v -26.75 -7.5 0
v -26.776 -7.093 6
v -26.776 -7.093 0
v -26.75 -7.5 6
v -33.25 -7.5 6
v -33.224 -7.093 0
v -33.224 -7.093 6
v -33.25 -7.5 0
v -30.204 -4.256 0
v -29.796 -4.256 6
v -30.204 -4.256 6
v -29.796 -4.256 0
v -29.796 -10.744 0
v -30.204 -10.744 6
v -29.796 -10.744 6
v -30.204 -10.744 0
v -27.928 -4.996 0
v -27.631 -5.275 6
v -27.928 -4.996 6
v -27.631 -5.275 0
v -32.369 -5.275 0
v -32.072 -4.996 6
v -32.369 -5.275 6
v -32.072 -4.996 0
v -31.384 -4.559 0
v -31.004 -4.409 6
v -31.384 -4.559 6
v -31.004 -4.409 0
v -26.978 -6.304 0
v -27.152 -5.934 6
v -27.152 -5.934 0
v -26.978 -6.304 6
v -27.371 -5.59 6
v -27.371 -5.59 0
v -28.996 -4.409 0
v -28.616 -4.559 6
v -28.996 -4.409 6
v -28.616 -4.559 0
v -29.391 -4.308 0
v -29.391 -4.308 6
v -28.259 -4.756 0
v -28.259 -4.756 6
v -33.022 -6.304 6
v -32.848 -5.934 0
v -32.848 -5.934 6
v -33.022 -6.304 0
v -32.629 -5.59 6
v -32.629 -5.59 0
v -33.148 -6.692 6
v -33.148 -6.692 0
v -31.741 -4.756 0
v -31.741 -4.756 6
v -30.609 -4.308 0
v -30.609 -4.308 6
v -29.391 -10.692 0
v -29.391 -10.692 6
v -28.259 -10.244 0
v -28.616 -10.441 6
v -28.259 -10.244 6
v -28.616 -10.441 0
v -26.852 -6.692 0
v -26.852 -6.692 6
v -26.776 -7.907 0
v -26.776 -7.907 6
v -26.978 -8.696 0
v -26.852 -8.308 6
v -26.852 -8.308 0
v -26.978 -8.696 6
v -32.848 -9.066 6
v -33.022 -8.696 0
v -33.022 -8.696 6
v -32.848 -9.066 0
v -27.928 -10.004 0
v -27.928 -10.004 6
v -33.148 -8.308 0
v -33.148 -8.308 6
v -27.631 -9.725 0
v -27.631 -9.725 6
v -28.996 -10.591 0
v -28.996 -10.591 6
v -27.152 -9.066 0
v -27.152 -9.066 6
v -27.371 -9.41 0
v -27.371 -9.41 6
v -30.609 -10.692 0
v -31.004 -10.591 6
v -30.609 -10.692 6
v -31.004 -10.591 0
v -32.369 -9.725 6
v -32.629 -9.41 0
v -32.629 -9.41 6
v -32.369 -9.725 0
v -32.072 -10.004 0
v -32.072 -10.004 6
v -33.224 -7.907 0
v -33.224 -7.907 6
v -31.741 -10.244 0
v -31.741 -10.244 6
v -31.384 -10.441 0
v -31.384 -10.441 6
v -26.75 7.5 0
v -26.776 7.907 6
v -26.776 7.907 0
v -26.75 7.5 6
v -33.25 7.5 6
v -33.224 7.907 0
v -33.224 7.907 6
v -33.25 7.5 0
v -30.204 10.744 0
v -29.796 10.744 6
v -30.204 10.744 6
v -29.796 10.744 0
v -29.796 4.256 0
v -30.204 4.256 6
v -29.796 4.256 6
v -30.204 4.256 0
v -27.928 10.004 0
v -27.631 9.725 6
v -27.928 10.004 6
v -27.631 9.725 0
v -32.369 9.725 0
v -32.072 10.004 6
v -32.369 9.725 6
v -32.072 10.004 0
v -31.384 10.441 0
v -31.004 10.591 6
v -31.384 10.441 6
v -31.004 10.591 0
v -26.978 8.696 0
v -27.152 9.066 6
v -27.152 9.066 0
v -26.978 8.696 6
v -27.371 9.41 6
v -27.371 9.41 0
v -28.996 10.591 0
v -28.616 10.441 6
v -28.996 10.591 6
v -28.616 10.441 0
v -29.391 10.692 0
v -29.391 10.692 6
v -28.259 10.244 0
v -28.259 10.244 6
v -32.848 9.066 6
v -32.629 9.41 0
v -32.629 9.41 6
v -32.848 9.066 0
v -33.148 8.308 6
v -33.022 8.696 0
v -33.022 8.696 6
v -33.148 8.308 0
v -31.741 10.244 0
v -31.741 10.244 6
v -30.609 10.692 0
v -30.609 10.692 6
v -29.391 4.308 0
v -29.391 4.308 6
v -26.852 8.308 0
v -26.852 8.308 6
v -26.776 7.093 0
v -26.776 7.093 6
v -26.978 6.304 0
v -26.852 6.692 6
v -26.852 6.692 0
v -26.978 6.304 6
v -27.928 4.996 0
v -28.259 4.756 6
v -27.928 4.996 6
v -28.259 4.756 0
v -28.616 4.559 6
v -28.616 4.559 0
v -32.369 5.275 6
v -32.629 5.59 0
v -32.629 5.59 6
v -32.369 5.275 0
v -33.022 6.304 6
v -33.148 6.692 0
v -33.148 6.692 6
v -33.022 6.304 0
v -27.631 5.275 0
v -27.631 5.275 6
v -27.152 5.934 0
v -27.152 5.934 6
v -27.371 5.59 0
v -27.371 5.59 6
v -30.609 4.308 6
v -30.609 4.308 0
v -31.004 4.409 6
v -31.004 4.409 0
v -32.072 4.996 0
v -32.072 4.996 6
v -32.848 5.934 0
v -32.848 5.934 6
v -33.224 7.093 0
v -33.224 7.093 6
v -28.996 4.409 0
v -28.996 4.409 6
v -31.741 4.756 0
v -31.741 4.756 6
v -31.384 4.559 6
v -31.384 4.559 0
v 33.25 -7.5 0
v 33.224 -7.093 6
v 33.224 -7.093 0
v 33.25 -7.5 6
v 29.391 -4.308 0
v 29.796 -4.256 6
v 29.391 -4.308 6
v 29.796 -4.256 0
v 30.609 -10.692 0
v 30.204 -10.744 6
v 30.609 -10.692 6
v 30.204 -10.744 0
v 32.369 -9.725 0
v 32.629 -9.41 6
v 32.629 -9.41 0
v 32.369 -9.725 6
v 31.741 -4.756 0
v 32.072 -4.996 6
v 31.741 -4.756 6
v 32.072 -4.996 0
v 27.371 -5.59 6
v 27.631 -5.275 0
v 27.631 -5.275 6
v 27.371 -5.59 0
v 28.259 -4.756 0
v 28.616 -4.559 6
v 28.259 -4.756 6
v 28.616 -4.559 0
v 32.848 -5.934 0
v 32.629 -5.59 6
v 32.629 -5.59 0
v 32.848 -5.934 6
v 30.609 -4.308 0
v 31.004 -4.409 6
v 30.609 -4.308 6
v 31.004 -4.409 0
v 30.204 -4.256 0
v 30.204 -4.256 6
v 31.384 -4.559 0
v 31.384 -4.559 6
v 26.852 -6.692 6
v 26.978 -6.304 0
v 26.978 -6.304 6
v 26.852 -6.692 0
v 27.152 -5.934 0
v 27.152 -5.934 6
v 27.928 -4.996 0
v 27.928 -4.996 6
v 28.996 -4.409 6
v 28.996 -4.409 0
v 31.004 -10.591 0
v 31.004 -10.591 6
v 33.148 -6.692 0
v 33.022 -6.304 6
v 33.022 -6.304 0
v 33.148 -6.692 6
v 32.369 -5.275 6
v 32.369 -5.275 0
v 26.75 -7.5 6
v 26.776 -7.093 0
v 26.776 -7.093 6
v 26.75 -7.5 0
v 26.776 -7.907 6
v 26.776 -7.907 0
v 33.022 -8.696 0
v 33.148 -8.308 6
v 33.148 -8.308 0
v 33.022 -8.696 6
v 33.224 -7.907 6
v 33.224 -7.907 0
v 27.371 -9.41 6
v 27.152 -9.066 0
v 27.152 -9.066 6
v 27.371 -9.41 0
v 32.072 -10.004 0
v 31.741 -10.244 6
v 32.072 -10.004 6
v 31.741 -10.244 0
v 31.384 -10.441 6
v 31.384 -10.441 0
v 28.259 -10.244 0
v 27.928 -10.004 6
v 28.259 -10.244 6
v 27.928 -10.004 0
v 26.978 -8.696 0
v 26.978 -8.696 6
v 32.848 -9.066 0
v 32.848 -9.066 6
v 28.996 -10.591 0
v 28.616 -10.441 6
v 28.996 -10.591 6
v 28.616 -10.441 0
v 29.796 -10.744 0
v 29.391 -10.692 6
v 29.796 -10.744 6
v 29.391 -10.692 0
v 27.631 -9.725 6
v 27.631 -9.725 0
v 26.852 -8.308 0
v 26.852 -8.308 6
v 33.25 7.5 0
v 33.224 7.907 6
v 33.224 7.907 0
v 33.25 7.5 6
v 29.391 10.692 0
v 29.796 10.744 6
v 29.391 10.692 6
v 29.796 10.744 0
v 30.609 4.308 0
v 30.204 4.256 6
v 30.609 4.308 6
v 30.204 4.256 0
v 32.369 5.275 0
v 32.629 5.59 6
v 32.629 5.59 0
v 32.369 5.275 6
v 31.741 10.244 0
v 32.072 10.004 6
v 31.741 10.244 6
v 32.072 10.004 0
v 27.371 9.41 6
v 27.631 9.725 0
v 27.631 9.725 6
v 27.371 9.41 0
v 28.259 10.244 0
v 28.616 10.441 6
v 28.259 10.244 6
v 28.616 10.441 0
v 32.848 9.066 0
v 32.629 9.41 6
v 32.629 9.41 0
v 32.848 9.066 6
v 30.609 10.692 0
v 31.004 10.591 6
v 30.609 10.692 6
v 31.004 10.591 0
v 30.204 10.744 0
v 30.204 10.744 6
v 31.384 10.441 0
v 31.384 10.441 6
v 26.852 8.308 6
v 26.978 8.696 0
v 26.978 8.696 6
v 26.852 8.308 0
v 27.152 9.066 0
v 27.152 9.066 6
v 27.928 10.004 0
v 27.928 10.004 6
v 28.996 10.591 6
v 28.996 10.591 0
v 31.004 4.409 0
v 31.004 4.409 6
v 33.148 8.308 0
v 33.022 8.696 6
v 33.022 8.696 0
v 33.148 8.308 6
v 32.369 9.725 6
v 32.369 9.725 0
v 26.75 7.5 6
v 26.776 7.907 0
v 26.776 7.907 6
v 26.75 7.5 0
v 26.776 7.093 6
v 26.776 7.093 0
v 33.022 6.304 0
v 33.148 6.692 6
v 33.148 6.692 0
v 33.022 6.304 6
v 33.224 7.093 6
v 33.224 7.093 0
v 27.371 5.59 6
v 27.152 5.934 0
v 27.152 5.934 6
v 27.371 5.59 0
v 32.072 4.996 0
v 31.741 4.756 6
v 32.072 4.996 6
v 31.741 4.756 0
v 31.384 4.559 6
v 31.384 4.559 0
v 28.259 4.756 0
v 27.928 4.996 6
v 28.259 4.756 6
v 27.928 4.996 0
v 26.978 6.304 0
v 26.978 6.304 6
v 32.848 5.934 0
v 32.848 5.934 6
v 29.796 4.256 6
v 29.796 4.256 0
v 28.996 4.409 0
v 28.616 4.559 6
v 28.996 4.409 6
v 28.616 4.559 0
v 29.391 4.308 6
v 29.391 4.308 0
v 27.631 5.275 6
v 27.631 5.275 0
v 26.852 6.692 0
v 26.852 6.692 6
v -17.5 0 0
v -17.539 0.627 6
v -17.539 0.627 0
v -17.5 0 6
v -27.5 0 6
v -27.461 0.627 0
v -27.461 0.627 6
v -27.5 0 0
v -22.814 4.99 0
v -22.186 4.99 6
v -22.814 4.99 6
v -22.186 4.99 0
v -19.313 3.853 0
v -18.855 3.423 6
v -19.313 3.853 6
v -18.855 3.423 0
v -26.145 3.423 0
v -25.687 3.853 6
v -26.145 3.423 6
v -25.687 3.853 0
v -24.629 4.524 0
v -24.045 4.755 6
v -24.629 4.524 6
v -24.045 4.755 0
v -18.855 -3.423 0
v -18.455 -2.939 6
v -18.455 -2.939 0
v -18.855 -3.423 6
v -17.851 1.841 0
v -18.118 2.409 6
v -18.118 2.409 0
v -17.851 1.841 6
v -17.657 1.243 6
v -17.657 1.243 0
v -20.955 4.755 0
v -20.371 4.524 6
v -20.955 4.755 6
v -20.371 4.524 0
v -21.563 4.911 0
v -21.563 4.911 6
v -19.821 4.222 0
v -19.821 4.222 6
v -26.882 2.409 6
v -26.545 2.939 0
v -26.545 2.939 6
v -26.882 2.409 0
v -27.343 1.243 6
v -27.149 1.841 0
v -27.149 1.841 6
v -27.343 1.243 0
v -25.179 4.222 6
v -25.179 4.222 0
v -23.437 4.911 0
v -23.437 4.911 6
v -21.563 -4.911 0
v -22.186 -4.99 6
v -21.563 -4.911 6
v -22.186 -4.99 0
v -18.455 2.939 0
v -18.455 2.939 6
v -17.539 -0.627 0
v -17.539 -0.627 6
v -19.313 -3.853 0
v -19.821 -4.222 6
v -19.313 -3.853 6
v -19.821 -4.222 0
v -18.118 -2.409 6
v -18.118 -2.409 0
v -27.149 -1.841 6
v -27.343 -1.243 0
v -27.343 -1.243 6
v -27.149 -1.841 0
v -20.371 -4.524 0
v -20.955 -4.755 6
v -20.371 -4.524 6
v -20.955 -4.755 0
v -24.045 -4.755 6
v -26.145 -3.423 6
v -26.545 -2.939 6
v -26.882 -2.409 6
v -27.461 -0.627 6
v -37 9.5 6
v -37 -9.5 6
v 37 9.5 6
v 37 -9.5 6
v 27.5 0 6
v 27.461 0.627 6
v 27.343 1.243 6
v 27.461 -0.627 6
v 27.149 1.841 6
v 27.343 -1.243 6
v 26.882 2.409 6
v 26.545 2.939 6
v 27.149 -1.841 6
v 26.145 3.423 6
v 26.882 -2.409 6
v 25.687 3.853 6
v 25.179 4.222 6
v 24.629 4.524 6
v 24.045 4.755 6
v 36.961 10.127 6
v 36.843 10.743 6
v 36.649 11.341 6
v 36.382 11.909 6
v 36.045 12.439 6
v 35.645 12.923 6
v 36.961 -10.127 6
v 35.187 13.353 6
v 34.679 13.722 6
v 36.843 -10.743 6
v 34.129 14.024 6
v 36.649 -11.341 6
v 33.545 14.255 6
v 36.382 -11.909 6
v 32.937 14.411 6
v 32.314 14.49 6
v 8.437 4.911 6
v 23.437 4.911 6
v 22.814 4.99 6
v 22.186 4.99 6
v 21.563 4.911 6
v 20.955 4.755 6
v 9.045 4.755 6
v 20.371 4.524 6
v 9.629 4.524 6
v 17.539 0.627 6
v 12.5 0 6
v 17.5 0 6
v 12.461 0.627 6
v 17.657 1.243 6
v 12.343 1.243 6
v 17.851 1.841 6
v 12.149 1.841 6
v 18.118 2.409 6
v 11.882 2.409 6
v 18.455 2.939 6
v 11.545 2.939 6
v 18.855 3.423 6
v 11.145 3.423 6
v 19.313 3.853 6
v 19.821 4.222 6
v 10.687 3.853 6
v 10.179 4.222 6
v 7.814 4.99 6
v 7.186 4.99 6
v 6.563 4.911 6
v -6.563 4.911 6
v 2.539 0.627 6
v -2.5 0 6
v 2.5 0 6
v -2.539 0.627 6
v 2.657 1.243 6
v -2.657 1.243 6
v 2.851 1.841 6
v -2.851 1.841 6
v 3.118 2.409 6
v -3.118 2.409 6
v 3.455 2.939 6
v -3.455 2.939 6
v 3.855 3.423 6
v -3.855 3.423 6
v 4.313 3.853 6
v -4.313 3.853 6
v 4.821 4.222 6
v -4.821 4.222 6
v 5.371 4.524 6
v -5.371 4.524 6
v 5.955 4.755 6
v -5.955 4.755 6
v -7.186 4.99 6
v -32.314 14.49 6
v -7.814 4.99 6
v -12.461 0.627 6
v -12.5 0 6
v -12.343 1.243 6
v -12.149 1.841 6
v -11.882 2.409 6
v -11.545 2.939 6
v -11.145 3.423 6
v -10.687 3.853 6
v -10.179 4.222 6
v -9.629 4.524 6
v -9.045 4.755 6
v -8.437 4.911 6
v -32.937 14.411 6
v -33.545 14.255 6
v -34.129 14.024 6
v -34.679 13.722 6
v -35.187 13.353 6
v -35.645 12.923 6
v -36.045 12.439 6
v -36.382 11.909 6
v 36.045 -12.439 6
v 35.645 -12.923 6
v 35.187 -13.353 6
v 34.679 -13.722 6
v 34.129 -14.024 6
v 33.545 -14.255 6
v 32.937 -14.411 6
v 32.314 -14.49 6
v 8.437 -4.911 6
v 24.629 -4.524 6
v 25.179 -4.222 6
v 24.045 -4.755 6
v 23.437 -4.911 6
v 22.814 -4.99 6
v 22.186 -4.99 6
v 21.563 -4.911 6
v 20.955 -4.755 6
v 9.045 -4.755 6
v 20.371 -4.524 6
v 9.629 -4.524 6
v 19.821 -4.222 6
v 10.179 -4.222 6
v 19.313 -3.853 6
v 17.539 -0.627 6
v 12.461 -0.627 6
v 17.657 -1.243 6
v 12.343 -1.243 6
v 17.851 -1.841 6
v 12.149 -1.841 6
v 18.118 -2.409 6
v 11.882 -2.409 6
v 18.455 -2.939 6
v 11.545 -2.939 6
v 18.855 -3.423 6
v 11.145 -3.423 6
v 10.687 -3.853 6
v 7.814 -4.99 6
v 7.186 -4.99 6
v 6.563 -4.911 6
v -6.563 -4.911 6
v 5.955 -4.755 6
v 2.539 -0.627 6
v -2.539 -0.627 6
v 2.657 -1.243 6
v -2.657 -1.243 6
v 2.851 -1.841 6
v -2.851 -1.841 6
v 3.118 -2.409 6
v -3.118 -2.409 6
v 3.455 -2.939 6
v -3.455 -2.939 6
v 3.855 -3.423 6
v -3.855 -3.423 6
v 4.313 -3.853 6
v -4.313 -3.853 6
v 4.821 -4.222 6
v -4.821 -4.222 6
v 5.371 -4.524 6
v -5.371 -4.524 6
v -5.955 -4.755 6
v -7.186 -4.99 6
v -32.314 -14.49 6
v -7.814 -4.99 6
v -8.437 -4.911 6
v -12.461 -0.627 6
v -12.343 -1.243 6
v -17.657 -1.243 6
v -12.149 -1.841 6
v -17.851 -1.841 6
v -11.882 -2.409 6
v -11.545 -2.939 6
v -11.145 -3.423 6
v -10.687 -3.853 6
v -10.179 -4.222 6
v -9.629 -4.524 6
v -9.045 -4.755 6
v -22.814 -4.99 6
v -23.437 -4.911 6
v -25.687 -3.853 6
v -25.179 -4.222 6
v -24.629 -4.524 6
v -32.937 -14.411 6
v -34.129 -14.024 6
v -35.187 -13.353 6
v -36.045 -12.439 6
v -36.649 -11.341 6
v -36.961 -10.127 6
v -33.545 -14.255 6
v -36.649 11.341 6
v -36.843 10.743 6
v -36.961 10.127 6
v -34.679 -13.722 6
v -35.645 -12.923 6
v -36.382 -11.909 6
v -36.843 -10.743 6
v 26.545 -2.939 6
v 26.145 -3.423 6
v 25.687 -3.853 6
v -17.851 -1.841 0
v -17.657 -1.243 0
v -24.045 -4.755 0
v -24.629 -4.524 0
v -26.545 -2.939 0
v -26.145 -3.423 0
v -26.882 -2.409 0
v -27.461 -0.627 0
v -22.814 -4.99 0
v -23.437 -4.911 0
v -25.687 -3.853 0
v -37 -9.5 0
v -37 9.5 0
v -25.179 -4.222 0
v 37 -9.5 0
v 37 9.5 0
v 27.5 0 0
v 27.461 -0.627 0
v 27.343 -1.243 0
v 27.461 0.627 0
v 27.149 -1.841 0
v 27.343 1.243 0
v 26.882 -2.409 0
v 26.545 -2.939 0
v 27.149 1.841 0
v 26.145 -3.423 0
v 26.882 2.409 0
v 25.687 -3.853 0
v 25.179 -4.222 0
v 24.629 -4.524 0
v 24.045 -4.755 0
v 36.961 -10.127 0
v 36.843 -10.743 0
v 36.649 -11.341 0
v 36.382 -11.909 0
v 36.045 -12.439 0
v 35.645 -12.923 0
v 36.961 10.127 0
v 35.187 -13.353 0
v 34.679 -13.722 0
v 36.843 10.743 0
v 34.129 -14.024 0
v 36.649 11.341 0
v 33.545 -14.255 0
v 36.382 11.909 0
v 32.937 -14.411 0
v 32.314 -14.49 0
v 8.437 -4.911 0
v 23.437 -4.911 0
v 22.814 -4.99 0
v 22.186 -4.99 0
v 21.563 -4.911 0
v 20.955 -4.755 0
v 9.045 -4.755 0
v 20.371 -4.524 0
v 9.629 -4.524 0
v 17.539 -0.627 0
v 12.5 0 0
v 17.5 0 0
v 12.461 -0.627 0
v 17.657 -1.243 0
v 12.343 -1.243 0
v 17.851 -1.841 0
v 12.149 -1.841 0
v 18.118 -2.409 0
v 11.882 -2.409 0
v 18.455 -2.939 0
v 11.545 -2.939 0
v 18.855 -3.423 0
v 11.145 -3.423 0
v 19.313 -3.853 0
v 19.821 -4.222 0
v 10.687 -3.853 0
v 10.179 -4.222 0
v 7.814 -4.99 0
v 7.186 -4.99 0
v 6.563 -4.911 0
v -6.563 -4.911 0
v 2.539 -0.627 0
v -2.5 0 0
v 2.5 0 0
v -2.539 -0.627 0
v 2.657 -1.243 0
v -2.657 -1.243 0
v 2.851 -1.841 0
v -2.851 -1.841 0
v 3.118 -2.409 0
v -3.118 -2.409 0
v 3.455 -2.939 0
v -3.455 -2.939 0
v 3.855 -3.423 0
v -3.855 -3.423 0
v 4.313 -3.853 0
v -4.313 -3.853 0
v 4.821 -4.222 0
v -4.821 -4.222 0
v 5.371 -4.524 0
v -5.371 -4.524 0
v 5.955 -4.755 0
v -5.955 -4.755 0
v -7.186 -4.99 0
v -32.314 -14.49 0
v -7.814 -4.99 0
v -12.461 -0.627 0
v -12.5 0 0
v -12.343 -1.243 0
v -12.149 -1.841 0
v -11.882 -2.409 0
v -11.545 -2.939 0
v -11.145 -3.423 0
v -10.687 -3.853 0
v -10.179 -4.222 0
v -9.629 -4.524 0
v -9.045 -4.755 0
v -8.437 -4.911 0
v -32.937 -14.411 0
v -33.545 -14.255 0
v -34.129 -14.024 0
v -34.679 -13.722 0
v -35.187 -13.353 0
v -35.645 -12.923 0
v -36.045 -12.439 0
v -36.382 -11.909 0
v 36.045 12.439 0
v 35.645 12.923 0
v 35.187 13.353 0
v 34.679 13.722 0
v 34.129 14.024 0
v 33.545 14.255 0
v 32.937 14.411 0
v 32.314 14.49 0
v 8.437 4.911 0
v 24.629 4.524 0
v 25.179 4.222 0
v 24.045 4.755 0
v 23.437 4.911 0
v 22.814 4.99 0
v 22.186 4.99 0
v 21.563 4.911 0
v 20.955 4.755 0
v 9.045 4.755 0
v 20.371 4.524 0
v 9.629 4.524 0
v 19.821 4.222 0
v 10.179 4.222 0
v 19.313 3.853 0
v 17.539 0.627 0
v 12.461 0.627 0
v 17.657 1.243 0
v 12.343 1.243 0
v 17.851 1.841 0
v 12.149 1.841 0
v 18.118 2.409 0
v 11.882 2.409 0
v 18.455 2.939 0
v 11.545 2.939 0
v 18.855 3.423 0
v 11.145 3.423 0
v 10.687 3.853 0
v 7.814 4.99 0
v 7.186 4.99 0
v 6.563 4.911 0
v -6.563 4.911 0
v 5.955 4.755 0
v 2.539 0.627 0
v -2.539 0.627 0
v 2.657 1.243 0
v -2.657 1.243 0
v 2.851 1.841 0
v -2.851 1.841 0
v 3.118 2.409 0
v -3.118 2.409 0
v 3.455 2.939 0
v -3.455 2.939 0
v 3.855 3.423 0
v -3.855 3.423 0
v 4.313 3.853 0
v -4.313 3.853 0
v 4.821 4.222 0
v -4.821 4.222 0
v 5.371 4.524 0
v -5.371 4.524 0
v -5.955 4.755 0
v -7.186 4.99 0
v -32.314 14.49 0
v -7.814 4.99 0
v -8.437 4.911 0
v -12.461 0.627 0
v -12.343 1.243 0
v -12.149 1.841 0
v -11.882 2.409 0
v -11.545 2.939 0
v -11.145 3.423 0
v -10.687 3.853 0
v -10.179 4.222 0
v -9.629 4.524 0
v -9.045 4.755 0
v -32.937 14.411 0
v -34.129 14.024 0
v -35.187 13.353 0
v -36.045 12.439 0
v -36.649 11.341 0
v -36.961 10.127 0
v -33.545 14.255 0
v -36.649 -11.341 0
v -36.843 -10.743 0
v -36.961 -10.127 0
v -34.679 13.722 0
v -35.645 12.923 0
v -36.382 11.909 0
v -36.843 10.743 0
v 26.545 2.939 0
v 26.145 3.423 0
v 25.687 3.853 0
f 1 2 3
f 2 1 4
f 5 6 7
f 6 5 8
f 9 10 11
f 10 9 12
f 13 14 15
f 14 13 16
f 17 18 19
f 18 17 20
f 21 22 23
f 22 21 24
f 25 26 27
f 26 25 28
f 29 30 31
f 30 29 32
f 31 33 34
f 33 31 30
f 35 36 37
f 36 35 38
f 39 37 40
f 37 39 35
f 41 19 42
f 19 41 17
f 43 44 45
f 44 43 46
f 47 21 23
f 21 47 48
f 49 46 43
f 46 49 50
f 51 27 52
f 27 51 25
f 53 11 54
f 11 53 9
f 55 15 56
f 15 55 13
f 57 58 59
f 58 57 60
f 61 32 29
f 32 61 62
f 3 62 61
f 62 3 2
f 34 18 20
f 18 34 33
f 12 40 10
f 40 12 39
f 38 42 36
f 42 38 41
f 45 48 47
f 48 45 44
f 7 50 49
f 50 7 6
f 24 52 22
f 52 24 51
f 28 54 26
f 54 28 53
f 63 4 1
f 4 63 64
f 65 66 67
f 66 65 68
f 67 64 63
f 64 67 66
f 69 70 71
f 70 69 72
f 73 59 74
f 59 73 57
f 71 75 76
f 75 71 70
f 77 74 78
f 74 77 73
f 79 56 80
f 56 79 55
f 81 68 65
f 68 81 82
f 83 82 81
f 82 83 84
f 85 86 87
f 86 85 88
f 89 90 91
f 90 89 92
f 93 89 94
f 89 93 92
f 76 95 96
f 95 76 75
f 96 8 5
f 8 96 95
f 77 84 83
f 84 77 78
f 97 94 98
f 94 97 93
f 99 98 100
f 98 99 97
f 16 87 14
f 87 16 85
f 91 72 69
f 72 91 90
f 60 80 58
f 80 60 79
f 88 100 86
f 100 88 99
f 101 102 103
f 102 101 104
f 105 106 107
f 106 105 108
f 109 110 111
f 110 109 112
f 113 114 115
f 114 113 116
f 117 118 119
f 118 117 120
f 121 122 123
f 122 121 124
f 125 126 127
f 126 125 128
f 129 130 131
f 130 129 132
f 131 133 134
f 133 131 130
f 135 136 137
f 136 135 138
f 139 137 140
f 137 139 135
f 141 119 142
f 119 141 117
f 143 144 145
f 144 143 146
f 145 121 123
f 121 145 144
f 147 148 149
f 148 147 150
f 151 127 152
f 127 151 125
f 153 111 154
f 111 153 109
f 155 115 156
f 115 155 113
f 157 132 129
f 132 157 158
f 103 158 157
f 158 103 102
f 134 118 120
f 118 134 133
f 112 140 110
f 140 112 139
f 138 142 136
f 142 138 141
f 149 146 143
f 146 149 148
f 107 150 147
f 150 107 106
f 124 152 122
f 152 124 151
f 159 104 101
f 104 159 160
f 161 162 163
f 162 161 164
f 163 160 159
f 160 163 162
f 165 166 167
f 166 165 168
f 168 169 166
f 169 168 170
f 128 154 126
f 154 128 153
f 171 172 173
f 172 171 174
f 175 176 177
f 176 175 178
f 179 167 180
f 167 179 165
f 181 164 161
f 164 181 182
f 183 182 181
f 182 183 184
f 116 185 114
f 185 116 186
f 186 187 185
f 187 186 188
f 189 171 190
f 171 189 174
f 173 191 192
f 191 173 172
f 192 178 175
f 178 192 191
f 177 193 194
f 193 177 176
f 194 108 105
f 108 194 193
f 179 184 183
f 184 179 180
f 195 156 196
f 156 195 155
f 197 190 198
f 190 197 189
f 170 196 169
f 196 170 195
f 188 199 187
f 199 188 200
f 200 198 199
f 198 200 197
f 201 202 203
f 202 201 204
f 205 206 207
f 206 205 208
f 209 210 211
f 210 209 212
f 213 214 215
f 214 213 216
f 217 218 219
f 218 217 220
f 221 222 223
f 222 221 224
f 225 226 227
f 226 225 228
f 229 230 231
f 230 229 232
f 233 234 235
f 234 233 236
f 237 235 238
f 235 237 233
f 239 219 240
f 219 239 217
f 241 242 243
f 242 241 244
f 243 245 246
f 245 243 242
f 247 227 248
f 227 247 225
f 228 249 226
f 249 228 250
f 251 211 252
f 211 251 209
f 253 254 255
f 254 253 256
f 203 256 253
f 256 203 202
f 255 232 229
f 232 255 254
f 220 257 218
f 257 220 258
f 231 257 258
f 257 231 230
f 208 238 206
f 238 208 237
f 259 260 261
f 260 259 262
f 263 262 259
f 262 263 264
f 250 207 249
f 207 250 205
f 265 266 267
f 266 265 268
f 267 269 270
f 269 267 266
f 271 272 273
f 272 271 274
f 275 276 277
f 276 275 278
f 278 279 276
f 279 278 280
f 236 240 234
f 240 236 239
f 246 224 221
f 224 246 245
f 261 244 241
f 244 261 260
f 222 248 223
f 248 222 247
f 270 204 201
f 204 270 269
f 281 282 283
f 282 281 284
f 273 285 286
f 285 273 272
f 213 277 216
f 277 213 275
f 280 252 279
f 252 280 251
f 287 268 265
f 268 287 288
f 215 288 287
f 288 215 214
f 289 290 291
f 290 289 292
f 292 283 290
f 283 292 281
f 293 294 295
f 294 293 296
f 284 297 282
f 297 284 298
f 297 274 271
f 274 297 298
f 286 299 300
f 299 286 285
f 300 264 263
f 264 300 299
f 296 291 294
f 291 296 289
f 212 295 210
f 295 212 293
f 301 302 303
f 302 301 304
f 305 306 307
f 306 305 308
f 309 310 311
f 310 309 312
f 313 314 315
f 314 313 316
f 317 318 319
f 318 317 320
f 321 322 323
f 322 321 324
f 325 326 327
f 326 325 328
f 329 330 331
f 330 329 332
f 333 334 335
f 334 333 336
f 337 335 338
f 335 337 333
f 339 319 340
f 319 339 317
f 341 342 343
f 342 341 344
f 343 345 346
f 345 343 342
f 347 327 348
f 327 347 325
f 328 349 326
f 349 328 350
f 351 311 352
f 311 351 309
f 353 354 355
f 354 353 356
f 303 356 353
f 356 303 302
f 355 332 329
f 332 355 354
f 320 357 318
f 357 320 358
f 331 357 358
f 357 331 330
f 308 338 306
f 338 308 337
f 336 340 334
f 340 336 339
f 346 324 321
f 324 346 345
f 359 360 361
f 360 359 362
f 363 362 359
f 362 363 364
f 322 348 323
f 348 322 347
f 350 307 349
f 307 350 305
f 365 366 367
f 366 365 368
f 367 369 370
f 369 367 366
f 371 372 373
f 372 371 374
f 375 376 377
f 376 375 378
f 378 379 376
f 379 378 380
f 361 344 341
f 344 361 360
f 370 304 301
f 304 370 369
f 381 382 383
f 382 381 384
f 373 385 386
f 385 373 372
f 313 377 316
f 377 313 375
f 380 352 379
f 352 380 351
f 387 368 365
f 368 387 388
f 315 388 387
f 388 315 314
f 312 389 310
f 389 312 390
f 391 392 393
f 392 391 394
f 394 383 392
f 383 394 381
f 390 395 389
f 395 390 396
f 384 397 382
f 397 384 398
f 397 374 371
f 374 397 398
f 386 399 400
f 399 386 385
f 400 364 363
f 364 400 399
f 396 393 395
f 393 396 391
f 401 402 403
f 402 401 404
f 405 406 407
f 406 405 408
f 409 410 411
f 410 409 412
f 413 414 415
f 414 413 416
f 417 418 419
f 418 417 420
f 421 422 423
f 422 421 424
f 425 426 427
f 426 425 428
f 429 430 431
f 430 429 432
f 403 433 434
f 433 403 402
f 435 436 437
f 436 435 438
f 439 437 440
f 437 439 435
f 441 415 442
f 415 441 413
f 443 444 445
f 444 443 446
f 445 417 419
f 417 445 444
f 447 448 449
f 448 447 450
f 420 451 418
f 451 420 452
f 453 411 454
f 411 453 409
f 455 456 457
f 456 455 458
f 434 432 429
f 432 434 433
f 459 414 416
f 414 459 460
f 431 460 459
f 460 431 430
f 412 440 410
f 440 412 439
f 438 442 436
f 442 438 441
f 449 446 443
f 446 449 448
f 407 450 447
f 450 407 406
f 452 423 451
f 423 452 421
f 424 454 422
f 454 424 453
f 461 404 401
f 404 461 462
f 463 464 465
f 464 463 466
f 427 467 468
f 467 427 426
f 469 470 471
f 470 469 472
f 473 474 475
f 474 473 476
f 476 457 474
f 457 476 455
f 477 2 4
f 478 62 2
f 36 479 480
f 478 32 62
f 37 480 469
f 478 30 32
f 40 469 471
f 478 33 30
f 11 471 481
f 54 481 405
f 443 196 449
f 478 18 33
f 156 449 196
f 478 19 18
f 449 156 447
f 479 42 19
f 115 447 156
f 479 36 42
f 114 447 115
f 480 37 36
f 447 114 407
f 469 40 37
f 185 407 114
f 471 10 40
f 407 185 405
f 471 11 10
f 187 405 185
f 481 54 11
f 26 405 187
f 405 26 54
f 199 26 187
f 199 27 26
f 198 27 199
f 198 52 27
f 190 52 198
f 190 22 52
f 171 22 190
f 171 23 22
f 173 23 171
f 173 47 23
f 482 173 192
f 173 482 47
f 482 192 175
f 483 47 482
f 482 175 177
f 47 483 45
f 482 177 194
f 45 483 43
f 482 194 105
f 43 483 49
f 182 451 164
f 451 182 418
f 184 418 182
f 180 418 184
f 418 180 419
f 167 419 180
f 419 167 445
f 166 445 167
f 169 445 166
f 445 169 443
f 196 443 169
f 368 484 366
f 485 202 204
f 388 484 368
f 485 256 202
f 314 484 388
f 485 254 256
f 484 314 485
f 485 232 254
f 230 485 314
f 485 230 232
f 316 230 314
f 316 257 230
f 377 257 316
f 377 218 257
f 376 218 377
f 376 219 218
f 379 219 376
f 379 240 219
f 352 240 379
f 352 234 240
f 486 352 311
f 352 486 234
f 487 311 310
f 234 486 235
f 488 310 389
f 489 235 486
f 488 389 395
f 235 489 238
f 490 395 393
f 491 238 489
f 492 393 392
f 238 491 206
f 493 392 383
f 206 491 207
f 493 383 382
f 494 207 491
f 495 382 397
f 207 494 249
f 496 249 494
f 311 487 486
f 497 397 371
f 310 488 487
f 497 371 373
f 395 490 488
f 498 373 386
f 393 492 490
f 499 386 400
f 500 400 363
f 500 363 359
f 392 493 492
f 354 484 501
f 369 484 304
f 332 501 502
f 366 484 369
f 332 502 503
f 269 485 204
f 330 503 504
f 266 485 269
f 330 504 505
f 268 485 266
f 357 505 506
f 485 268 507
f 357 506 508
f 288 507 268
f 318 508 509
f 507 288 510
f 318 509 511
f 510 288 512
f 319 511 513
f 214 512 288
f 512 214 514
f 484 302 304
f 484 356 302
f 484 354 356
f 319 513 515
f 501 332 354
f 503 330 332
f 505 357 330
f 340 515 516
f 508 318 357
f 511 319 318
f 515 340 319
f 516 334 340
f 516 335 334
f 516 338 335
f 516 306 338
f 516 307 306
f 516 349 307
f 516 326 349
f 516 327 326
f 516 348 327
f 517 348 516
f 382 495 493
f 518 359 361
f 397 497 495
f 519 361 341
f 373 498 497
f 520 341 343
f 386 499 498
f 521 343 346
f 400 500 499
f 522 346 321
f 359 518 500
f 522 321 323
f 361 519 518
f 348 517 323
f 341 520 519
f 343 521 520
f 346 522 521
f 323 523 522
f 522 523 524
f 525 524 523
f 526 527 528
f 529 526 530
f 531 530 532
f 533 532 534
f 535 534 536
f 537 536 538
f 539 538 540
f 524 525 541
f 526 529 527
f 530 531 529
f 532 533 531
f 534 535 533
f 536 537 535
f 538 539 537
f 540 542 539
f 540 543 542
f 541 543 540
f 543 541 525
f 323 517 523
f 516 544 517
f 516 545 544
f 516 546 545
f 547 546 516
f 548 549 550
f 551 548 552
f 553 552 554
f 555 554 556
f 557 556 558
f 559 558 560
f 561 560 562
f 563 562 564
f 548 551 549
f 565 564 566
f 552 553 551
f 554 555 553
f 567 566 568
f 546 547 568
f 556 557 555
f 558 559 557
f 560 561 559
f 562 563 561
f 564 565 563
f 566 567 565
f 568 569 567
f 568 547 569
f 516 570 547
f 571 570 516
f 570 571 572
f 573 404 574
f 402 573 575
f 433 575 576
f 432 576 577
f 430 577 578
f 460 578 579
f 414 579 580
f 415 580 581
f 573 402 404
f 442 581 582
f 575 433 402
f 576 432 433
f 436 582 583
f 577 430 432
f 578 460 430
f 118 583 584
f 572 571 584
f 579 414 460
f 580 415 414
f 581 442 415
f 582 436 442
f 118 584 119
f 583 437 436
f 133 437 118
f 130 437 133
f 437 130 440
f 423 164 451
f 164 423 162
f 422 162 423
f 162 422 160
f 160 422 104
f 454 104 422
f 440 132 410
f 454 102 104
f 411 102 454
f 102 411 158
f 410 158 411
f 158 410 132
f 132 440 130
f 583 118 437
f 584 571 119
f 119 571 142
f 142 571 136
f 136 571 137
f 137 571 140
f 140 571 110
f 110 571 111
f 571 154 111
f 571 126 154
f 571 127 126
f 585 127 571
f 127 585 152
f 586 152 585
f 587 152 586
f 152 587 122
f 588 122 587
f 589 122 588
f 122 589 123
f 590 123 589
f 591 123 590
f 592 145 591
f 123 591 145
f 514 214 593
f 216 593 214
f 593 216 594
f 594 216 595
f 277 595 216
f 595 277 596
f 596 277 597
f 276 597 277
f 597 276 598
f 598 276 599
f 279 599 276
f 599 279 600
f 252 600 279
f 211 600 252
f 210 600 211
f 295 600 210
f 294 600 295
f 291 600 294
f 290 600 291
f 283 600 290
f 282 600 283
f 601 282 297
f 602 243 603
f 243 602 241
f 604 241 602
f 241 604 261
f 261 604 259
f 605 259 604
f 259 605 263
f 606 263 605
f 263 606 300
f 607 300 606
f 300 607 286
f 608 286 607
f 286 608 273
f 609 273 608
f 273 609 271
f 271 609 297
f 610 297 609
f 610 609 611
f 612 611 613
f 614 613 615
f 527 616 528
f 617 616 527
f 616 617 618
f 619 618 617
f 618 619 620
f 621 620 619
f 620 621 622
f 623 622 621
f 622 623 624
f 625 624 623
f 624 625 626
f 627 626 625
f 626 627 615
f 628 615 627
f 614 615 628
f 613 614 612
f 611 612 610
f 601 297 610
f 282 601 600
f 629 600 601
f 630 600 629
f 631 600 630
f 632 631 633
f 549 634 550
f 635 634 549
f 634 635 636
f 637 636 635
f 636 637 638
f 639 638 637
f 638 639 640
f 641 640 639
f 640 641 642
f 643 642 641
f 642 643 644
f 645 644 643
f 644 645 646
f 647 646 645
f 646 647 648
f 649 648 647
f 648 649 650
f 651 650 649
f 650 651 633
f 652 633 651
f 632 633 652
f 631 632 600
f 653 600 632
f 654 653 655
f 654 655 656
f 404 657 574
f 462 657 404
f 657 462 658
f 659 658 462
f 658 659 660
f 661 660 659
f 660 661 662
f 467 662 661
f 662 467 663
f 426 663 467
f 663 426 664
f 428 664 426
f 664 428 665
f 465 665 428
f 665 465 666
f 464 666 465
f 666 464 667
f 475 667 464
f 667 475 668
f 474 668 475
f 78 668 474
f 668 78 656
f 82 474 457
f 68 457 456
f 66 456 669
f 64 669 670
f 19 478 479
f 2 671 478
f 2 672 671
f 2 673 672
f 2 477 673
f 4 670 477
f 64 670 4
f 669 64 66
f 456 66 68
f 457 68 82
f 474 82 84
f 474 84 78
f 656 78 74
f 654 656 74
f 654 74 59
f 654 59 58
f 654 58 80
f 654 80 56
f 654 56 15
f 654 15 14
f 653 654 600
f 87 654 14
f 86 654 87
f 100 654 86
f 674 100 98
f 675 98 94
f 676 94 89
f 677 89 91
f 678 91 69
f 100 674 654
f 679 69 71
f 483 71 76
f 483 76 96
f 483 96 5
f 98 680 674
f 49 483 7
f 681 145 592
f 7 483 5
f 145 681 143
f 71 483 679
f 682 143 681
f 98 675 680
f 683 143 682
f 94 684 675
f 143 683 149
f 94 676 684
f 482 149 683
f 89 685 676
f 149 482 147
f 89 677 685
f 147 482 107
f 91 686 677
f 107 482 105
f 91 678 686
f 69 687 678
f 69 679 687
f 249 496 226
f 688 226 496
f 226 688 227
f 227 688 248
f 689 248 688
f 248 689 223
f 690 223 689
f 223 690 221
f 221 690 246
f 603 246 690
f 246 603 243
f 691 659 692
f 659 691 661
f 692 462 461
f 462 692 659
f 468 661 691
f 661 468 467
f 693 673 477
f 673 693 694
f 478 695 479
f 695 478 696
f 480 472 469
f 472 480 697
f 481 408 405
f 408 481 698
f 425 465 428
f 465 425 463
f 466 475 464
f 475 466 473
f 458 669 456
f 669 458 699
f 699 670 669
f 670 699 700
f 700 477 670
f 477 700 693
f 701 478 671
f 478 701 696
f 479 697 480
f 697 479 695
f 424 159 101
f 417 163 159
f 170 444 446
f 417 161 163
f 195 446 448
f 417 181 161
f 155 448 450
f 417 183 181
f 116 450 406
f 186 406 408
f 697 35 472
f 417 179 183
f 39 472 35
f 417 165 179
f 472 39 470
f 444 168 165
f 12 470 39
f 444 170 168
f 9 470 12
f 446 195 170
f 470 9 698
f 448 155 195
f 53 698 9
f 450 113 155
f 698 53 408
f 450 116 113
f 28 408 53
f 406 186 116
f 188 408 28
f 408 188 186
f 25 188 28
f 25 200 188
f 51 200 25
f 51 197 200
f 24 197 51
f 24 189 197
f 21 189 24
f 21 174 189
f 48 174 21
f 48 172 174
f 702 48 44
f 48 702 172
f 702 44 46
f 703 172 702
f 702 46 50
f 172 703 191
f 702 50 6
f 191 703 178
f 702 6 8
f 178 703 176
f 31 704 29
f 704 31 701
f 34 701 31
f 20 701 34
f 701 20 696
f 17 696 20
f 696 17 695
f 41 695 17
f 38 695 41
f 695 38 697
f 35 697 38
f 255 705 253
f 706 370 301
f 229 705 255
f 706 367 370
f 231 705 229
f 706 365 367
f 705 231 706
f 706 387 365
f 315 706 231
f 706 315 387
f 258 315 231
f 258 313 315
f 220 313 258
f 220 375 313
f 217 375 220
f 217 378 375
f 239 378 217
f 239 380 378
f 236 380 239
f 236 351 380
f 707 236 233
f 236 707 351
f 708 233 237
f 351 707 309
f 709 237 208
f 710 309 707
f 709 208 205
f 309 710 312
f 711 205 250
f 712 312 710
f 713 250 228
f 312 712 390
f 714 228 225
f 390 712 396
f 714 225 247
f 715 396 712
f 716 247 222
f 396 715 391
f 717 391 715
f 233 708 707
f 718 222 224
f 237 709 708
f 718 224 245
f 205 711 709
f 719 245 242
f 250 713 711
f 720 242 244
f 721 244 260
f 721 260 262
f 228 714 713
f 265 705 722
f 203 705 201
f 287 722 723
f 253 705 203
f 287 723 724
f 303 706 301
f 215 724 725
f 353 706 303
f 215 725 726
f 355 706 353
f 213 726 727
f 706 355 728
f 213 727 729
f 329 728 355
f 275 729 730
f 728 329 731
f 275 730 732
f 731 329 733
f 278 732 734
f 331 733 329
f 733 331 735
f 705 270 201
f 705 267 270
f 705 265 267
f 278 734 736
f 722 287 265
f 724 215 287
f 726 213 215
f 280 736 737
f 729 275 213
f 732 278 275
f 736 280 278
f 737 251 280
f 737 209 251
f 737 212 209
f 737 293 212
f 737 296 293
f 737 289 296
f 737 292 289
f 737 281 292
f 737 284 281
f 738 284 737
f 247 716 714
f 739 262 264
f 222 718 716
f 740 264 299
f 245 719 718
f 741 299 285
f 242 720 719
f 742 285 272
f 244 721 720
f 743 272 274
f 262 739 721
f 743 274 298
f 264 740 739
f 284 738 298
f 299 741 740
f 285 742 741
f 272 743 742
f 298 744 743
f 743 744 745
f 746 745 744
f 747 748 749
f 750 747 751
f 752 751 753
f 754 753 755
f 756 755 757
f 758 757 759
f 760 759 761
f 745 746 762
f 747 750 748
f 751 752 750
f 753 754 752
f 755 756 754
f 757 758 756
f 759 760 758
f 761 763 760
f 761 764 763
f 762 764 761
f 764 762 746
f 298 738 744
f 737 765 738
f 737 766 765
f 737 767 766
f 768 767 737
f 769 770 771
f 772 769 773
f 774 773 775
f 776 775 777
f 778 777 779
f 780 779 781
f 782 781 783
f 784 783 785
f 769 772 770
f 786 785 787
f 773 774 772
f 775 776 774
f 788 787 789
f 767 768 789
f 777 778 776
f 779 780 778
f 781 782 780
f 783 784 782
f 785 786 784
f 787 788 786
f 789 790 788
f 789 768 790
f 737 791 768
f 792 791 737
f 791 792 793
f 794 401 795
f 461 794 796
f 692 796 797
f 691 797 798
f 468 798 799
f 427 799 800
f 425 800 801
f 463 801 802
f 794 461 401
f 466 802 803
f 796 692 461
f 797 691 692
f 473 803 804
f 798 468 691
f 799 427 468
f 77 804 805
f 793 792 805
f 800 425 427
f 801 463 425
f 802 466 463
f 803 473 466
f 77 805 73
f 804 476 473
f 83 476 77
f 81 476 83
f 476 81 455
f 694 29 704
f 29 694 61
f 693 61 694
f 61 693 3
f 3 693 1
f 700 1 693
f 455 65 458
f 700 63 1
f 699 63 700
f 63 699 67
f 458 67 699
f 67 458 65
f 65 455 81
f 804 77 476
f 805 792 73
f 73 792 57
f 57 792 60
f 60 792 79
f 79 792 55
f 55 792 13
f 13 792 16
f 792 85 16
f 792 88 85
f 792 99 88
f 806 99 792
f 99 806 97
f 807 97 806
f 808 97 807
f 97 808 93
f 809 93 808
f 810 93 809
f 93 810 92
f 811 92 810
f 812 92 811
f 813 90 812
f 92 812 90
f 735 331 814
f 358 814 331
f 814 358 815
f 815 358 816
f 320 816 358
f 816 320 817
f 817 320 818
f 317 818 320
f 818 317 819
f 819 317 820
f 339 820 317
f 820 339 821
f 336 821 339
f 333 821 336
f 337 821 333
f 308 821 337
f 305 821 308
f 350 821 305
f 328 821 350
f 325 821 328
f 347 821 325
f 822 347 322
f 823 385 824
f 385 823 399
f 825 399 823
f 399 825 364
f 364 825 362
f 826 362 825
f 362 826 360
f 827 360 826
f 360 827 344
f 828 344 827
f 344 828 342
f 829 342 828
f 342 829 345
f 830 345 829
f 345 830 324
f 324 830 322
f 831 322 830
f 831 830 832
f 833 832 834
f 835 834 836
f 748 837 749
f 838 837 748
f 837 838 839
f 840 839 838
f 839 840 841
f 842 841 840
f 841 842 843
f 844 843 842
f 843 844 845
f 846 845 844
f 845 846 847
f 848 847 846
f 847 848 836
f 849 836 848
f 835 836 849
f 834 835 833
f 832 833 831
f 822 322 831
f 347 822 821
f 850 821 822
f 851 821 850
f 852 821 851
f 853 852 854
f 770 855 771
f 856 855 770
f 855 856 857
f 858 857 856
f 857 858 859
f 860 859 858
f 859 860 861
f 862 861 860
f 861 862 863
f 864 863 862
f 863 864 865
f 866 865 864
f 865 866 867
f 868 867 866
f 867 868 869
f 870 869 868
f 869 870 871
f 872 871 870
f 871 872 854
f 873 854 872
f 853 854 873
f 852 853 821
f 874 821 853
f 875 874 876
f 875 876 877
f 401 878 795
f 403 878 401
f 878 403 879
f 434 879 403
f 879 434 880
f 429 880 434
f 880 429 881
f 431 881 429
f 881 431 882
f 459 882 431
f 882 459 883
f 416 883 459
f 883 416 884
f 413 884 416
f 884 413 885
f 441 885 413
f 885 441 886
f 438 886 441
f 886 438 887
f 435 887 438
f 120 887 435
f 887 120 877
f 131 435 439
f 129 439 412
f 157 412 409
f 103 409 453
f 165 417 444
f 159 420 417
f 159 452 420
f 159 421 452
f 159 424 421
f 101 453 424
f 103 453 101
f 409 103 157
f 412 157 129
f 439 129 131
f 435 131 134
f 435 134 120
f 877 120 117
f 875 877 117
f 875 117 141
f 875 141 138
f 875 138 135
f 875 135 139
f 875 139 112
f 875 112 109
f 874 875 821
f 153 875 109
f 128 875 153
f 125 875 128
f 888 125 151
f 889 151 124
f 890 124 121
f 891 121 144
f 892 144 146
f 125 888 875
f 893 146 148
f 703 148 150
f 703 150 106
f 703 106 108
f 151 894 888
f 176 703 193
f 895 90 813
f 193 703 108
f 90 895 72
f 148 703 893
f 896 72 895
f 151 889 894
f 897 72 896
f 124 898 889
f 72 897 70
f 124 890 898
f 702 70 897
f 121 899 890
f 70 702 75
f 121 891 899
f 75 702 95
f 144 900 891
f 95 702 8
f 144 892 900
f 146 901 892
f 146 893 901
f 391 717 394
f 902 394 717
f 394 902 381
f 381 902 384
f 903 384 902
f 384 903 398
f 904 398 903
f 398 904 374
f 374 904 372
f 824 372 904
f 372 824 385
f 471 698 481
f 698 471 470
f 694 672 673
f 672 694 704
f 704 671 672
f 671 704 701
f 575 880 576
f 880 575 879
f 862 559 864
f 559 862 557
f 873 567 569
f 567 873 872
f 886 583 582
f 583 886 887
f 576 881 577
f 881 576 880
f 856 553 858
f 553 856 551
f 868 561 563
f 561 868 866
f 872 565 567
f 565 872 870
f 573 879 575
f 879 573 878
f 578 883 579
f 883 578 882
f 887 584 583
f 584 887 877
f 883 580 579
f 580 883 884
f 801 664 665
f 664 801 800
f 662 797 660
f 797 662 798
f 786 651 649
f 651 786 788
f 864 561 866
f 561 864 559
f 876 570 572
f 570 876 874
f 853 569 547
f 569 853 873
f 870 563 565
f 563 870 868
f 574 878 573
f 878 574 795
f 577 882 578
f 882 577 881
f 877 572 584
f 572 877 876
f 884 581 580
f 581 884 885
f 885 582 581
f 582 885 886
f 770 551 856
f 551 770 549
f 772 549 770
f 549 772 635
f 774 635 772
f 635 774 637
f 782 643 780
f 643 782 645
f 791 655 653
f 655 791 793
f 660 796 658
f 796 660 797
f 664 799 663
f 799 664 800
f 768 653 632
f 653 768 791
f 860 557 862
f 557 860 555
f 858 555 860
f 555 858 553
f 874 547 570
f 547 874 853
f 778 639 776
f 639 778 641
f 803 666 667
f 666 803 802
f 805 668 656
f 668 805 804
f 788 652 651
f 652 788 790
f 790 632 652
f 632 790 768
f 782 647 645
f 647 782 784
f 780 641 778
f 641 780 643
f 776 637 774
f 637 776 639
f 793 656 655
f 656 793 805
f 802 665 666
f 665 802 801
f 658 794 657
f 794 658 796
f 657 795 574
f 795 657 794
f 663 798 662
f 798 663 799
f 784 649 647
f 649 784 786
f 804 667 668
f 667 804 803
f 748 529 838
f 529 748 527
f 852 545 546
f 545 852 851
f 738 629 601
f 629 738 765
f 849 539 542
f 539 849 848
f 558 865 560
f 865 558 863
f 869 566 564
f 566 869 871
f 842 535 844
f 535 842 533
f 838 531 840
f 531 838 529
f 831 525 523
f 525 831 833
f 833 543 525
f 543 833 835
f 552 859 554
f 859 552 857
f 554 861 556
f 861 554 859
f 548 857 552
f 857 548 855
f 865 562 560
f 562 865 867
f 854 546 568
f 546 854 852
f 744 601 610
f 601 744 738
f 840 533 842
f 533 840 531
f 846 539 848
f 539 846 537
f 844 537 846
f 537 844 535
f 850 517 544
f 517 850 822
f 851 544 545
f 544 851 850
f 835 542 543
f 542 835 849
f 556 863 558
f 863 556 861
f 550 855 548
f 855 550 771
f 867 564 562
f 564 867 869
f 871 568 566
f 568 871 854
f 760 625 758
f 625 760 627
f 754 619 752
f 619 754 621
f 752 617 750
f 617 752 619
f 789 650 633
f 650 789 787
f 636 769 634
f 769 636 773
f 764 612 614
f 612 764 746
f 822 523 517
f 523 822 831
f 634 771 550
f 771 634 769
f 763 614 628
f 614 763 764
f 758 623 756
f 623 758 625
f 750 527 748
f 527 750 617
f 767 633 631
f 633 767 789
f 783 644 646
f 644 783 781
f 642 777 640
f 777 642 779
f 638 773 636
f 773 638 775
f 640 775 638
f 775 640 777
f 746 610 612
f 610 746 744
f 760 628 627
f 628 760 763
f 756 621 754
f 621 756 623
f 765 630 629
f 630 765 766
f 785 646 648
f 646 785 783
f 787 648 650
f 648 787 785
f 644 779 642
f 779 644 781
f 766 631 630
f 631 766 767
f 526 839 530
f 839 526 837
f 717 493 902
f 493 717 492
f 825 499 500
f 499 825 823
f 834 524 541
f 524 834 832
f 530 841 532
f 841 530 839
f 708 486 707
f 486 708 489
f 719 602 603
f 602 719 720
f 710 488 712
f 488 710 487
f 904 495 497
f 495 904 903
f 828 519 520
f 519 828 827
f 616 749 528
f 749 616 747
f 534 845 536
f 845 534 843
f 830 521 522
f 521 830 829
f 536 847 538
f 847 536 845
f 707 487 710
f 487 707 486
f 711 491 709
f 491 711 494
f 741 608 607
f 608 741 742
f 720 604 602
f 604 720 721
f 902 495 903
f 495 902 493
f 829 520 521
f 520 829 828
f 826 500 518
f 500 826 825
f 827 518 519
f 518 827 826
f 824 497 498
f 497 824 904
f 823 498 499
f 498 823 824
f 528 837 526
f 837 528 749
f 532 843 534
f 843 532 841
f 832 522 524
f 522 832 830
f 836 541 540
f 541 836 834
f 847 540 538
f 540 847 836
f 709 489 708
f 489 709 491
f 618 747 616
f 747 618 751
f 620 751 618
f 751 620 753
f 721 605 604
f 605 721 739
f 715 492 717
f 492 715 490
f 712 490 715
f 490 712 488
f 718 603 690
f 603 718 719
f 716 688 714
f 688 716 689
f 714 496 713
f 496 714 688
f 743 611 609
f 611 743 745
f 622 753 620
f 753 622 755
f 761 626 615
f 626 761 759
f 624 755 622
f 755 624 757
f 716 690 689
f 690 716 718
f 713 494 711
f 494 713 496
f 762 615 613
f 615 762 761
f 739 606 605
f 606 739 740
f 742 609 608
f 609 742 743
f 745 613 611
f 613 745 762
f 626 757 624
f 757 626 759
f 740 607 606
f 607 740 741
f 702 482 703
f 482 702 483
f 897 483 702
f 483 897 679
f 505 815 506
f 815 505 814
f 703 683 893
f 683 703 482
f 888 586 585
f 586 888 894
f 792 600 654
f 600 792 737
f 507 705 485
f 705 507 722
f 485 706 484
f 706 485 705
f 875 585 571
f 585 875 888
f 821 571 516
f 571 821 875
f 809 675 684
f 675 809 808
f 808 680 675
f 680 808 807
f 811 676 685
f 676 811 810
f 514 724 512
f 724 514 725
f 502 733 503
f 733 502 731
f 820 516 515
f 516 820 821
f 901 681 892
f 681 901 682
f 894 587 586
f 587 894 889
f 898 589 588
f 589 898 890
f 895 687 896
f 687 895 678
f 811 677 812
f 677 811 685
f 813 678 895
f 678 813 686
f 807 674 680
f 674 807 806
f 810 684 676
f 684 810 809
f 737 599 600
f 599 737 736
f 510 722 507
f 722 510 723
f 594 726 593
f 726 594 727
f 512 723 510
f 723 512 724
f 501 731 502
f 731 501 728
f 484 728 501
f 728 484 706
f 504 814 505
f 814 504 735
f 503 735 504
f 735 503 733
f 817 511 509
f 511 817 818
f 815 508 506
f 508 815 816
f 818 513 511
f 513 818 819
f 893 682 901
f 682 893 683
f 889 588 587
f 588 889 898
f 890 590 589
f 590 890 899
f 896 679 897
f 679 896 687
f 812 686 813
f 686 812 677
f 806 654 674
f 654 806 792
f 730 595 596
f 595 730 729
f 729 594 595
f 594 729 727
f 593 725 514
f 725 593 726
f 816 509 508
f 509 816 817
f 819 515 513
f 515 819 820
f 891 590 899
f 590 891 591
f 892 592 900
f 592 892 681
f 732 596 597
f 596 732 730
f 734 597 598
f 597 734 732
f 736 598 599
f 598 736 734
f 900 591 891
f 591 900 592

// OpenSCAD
$fn = 50;


difference() {
	union() {
		hull() {
			translate(v = [-32.0000000000, 9.5000000000, 0]) {
				cylinder(h = 6, r = 5);
			}
			translate(v = [32.0000000000, 9.5000000000, 0]) {
				cylinder(h = 6, r = 5);
			}
			translate(v = [-32.0000000000, -9.5000000000, 0]) {
				cylinder(h = 6, r = 5);
			}
			translate(v = [32.0000000000, -9.5000000000, 0]) {
				cylinder(h = 6, r = 5);
			}
		}
	}
	union() {
		#translate(v = [-30.0000000000, -7.5000000000, -100.0000000000]) {
			cylinder(h = 200, r = 3.2500000000);
		}
		#translate(v = [-30.0000000000, 7.5000000000, -100.0000000000]) {
			cylinder(h = 200, r = 3.2500000000);
		}
		#translate(v = [30.0000000000, -7.5000000000, -100.0000000000]) {
			cylinder(h = 200, r = 3.2500000000);
		}
		#translate(v = [30.0000000000, 7.5000000000, -100.0000000000]) {
			cylinder(h = 200, r = 3.2500000000);
		}
		#translate(v = [-22.5000000000, 0, 0]) {
			cylinder(h = 6, r = 5.0000000000);
		}
		#translate(v = [-7.5000000000, 0, 0]) {
			cylinder(h = 6, r = 5.0000000000);
		}
		#translate(v = [7.5000000000, 0, 0]) {
			cylinder(h = 6, r = 5.0000000000);
		}
		#translate(v = [22.5000000000, 0, 0]) {
			cylinder(h = 6, r = 5.0000000000);
		}
	}
}
